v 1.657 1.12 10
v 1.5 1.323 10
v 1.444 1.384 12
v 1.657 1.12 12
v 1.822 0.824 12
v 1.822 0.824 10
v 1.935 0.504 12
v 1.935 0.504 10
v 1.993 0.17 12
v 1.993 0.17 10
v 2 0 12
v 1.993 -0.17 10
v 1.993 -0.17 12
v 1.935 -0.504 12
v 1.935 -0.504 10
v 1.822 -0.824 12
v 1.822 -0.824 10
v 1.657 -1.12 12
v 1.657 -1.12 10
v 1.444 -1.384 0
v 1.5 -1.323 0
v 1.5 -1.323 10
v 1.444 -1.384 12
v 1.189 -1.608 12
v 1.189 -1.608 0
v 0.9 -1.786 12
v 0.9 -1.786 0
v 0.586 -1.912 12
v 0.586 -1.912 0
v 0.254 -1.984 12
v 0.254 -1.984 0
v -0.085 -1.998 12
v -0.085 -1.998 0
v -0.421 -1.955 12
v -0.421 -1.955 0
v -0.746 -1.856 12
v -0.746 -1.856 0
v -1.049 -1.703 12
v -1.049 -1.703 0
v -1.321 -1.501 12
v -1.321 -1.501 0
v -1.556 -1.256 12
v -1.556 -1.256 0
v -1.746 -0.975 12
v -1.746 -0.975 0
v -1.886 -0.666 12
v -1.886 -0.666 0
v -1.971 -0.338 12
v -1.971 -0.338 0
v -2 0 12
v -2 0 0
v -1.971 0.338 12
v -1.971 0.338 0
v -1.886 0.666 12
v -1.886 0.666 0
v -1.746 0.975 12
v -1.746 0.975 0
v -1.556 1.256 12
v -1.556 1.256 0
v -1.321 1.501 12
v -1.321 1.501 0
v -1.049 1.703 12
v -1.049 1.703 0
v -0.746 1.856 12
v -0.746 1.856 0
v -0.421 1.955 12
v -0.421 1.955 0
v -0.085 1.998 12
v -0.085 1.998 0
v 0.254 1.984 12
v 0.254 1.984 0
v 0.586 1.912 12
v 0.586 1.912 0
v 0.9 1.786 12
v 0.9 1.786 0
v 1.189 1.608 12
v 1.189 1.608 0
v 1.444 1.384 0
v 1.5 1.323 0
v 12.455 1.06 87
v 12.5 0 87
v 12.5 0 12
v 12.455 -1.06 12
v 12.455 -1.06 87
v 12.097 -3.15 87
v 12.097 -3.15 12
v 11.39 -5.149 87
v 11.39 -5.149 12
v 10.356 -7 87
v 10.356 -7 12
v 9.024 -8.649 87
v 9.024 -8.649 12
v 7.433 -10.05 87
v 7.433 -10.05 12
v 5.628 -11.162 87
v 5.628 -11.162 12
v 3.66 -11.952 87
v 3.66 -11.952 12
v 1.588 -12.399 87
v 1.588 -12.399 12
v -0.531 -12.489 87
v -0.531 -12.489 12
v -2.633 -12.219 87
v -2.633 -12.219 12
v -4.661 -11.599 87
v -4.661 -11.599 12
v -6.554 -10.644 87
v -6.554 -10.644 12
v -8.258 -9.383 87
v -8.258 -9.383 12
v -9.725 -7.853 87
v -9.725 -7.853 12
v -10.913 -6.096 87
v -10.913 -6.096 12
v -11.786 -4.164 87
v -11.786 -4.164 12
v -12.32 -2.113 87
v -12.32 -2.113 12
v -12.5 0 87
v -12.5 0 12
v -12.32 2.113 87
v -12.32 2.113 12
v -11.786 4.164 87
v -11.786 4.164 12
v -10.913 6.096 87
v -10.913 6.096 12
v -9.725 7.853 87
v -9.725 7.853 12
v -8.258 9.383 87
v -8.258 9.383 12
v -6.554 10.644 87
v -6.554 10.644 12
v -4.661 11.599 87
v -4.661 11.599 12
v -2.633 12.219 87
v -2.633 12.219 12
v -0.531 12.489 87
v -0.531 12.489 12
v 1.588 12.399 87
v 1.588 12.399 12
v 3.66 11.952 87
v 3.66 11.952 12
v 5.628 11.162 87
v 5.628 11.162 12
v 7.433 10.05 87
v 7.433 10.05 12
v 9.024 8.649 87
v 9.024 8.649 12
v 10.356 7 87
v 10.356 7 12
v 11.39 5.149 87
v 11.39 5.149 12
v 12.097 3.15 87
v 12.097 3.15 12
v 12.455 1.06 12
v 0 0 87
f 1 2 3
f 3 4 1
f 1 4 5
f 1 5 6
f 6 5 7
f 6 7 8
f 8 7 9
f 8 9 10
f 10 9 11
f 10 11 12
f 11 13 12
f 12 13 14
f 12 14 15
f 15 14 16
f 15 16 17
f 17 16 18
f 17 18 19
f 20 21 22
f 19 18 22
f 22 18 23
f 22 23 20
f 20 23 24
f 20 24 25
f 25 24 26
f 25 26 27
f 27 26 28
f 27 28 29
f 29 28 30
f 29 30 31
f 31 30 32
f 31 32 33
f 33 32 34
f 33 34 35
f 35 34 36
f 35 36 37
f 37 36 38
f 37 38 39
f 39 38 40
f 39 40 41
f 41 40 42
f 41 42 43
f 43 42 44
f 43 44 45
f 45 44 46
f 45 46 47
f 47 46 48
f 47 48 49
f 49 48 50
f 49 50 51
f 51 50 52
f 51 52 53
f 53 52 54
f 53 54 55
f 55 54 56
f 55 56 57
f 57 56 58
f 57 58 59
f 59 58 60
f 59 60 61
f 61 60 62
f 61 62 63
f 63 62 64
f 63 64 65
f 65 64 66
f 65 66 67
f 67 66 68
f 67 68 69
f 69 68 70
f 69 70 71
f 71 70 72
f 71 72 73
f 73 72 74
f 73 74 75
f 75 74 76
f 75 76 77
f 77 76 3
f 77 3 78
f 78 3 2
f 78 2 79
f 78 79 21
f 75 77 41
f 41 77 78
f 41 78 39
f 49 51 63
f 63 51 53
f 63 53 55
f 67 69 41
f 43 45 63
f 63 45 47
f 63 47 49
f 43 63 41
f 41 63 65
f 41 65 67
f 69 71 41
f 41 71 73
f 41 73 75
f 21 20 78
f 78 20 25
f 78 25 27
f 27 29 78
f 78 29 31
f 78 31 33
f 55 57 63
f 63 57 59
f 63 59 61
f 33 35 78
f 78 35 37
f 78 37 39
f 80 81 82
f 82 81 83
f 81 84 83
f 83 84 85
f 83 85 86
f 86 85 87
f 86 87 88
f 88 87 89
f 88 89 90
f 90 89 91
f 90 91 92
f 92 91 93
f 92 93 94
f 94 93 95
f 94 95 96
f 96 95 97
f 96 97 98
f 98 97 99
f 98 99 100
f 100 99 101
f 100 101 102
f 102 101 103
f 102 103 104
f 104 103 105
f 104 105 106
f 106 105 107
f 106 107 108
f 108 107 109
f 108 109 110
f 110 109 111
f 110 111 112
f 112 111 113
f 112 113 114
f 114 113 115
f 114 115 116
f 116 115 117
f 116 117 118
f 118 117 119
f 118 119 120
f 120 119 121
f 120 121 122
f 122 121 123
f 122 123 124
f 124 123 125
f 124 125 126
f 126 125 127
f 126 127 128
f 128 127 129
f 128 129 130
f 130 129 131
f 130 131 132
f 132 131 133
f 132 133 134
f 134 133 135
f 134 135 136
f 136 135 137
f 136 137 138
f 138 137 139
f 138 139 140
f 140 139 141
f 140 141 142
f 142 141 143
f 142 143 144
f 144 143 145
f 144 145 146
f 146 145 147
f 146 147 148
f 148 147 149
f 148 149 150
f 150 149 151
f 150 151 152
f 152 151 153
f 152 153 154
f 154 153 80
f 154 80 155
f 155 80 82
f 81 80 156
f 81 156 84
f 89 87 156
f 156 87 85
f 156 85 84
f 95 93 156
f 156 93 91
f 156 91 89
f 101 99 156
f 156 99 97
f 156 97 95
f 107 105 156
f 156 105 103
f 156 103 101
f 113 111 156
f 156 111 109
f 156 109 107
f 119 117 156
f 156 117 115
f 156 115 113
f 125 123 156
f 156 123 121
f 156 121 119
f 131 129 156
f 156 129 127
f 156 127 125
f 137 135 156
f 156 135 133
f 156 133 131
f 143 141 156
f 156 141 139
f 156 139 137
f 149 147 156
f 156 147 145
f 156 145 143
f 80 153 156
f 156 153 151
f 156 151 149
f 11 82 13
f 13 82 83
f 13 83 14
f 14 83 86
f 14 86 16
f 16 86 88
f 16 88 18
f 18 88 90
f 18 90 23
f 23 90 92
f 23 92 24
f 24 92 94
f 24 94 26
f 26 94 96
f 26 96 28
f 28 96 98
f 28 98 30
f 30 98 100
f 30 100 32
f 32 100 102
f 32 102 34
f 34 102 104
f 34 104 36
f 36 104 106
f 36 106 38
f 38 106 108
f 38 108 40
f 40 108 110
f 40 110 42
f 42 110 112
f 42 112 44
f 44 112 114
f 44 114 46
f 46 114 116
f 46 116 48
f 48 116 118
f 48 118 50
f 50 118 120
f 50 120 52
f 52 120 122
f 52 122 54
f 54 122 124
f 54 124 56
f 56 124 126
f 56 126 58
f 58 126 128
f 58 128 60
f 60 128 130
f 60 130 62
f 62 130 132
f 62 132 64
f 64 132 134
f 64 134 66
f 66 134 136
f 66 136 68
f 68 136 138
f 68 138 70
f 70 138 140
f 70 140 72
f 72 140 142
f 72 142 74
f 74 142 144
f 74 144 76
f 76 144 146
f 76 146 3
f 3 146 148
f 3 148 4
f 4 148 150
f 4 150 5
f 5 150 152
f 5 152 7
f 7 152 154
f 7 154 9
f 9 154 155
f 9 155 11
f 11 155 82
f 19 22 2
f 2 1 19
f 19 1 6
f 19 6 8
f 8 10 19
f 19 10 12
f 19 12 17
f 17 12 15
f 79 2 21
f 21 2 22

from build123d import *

# Parameters (mm, degrees)
SKETCH1_R    = 2
SHAFT_DEPTH  = 12
SKETCH2_R    = 12.5
BODY_DEPTH   = 75
SKETCH3_W    = 3
SKETCH3_H    = 6
D_FLAT_DEPTH = 10


with BuildPart() as part:
    # Sketch1 → Shaft (new body)
    with BuildSketch(Plane.XY):
        Circle(SKETCH1_R)
    extrude(amount=SHAFT_DEPTH)

    # Sketch2 → Body (add)
    with BuildSketch(Plane.XY.offset(12)):
        Circle(SKETCH2_R)
    extrude(amount=BODY_DEPTH)

    # Sketch3 → D_flat (cut)
    with BuildSketch(Plane.XY):
        with Locations((3, 0)):
            Rectangle(SKETCH3_W, SKETCH3_H)
    extrude(amount=D_FLAT_DEPTH, mode=Mode.SUBTRACT)


solid = part.part
